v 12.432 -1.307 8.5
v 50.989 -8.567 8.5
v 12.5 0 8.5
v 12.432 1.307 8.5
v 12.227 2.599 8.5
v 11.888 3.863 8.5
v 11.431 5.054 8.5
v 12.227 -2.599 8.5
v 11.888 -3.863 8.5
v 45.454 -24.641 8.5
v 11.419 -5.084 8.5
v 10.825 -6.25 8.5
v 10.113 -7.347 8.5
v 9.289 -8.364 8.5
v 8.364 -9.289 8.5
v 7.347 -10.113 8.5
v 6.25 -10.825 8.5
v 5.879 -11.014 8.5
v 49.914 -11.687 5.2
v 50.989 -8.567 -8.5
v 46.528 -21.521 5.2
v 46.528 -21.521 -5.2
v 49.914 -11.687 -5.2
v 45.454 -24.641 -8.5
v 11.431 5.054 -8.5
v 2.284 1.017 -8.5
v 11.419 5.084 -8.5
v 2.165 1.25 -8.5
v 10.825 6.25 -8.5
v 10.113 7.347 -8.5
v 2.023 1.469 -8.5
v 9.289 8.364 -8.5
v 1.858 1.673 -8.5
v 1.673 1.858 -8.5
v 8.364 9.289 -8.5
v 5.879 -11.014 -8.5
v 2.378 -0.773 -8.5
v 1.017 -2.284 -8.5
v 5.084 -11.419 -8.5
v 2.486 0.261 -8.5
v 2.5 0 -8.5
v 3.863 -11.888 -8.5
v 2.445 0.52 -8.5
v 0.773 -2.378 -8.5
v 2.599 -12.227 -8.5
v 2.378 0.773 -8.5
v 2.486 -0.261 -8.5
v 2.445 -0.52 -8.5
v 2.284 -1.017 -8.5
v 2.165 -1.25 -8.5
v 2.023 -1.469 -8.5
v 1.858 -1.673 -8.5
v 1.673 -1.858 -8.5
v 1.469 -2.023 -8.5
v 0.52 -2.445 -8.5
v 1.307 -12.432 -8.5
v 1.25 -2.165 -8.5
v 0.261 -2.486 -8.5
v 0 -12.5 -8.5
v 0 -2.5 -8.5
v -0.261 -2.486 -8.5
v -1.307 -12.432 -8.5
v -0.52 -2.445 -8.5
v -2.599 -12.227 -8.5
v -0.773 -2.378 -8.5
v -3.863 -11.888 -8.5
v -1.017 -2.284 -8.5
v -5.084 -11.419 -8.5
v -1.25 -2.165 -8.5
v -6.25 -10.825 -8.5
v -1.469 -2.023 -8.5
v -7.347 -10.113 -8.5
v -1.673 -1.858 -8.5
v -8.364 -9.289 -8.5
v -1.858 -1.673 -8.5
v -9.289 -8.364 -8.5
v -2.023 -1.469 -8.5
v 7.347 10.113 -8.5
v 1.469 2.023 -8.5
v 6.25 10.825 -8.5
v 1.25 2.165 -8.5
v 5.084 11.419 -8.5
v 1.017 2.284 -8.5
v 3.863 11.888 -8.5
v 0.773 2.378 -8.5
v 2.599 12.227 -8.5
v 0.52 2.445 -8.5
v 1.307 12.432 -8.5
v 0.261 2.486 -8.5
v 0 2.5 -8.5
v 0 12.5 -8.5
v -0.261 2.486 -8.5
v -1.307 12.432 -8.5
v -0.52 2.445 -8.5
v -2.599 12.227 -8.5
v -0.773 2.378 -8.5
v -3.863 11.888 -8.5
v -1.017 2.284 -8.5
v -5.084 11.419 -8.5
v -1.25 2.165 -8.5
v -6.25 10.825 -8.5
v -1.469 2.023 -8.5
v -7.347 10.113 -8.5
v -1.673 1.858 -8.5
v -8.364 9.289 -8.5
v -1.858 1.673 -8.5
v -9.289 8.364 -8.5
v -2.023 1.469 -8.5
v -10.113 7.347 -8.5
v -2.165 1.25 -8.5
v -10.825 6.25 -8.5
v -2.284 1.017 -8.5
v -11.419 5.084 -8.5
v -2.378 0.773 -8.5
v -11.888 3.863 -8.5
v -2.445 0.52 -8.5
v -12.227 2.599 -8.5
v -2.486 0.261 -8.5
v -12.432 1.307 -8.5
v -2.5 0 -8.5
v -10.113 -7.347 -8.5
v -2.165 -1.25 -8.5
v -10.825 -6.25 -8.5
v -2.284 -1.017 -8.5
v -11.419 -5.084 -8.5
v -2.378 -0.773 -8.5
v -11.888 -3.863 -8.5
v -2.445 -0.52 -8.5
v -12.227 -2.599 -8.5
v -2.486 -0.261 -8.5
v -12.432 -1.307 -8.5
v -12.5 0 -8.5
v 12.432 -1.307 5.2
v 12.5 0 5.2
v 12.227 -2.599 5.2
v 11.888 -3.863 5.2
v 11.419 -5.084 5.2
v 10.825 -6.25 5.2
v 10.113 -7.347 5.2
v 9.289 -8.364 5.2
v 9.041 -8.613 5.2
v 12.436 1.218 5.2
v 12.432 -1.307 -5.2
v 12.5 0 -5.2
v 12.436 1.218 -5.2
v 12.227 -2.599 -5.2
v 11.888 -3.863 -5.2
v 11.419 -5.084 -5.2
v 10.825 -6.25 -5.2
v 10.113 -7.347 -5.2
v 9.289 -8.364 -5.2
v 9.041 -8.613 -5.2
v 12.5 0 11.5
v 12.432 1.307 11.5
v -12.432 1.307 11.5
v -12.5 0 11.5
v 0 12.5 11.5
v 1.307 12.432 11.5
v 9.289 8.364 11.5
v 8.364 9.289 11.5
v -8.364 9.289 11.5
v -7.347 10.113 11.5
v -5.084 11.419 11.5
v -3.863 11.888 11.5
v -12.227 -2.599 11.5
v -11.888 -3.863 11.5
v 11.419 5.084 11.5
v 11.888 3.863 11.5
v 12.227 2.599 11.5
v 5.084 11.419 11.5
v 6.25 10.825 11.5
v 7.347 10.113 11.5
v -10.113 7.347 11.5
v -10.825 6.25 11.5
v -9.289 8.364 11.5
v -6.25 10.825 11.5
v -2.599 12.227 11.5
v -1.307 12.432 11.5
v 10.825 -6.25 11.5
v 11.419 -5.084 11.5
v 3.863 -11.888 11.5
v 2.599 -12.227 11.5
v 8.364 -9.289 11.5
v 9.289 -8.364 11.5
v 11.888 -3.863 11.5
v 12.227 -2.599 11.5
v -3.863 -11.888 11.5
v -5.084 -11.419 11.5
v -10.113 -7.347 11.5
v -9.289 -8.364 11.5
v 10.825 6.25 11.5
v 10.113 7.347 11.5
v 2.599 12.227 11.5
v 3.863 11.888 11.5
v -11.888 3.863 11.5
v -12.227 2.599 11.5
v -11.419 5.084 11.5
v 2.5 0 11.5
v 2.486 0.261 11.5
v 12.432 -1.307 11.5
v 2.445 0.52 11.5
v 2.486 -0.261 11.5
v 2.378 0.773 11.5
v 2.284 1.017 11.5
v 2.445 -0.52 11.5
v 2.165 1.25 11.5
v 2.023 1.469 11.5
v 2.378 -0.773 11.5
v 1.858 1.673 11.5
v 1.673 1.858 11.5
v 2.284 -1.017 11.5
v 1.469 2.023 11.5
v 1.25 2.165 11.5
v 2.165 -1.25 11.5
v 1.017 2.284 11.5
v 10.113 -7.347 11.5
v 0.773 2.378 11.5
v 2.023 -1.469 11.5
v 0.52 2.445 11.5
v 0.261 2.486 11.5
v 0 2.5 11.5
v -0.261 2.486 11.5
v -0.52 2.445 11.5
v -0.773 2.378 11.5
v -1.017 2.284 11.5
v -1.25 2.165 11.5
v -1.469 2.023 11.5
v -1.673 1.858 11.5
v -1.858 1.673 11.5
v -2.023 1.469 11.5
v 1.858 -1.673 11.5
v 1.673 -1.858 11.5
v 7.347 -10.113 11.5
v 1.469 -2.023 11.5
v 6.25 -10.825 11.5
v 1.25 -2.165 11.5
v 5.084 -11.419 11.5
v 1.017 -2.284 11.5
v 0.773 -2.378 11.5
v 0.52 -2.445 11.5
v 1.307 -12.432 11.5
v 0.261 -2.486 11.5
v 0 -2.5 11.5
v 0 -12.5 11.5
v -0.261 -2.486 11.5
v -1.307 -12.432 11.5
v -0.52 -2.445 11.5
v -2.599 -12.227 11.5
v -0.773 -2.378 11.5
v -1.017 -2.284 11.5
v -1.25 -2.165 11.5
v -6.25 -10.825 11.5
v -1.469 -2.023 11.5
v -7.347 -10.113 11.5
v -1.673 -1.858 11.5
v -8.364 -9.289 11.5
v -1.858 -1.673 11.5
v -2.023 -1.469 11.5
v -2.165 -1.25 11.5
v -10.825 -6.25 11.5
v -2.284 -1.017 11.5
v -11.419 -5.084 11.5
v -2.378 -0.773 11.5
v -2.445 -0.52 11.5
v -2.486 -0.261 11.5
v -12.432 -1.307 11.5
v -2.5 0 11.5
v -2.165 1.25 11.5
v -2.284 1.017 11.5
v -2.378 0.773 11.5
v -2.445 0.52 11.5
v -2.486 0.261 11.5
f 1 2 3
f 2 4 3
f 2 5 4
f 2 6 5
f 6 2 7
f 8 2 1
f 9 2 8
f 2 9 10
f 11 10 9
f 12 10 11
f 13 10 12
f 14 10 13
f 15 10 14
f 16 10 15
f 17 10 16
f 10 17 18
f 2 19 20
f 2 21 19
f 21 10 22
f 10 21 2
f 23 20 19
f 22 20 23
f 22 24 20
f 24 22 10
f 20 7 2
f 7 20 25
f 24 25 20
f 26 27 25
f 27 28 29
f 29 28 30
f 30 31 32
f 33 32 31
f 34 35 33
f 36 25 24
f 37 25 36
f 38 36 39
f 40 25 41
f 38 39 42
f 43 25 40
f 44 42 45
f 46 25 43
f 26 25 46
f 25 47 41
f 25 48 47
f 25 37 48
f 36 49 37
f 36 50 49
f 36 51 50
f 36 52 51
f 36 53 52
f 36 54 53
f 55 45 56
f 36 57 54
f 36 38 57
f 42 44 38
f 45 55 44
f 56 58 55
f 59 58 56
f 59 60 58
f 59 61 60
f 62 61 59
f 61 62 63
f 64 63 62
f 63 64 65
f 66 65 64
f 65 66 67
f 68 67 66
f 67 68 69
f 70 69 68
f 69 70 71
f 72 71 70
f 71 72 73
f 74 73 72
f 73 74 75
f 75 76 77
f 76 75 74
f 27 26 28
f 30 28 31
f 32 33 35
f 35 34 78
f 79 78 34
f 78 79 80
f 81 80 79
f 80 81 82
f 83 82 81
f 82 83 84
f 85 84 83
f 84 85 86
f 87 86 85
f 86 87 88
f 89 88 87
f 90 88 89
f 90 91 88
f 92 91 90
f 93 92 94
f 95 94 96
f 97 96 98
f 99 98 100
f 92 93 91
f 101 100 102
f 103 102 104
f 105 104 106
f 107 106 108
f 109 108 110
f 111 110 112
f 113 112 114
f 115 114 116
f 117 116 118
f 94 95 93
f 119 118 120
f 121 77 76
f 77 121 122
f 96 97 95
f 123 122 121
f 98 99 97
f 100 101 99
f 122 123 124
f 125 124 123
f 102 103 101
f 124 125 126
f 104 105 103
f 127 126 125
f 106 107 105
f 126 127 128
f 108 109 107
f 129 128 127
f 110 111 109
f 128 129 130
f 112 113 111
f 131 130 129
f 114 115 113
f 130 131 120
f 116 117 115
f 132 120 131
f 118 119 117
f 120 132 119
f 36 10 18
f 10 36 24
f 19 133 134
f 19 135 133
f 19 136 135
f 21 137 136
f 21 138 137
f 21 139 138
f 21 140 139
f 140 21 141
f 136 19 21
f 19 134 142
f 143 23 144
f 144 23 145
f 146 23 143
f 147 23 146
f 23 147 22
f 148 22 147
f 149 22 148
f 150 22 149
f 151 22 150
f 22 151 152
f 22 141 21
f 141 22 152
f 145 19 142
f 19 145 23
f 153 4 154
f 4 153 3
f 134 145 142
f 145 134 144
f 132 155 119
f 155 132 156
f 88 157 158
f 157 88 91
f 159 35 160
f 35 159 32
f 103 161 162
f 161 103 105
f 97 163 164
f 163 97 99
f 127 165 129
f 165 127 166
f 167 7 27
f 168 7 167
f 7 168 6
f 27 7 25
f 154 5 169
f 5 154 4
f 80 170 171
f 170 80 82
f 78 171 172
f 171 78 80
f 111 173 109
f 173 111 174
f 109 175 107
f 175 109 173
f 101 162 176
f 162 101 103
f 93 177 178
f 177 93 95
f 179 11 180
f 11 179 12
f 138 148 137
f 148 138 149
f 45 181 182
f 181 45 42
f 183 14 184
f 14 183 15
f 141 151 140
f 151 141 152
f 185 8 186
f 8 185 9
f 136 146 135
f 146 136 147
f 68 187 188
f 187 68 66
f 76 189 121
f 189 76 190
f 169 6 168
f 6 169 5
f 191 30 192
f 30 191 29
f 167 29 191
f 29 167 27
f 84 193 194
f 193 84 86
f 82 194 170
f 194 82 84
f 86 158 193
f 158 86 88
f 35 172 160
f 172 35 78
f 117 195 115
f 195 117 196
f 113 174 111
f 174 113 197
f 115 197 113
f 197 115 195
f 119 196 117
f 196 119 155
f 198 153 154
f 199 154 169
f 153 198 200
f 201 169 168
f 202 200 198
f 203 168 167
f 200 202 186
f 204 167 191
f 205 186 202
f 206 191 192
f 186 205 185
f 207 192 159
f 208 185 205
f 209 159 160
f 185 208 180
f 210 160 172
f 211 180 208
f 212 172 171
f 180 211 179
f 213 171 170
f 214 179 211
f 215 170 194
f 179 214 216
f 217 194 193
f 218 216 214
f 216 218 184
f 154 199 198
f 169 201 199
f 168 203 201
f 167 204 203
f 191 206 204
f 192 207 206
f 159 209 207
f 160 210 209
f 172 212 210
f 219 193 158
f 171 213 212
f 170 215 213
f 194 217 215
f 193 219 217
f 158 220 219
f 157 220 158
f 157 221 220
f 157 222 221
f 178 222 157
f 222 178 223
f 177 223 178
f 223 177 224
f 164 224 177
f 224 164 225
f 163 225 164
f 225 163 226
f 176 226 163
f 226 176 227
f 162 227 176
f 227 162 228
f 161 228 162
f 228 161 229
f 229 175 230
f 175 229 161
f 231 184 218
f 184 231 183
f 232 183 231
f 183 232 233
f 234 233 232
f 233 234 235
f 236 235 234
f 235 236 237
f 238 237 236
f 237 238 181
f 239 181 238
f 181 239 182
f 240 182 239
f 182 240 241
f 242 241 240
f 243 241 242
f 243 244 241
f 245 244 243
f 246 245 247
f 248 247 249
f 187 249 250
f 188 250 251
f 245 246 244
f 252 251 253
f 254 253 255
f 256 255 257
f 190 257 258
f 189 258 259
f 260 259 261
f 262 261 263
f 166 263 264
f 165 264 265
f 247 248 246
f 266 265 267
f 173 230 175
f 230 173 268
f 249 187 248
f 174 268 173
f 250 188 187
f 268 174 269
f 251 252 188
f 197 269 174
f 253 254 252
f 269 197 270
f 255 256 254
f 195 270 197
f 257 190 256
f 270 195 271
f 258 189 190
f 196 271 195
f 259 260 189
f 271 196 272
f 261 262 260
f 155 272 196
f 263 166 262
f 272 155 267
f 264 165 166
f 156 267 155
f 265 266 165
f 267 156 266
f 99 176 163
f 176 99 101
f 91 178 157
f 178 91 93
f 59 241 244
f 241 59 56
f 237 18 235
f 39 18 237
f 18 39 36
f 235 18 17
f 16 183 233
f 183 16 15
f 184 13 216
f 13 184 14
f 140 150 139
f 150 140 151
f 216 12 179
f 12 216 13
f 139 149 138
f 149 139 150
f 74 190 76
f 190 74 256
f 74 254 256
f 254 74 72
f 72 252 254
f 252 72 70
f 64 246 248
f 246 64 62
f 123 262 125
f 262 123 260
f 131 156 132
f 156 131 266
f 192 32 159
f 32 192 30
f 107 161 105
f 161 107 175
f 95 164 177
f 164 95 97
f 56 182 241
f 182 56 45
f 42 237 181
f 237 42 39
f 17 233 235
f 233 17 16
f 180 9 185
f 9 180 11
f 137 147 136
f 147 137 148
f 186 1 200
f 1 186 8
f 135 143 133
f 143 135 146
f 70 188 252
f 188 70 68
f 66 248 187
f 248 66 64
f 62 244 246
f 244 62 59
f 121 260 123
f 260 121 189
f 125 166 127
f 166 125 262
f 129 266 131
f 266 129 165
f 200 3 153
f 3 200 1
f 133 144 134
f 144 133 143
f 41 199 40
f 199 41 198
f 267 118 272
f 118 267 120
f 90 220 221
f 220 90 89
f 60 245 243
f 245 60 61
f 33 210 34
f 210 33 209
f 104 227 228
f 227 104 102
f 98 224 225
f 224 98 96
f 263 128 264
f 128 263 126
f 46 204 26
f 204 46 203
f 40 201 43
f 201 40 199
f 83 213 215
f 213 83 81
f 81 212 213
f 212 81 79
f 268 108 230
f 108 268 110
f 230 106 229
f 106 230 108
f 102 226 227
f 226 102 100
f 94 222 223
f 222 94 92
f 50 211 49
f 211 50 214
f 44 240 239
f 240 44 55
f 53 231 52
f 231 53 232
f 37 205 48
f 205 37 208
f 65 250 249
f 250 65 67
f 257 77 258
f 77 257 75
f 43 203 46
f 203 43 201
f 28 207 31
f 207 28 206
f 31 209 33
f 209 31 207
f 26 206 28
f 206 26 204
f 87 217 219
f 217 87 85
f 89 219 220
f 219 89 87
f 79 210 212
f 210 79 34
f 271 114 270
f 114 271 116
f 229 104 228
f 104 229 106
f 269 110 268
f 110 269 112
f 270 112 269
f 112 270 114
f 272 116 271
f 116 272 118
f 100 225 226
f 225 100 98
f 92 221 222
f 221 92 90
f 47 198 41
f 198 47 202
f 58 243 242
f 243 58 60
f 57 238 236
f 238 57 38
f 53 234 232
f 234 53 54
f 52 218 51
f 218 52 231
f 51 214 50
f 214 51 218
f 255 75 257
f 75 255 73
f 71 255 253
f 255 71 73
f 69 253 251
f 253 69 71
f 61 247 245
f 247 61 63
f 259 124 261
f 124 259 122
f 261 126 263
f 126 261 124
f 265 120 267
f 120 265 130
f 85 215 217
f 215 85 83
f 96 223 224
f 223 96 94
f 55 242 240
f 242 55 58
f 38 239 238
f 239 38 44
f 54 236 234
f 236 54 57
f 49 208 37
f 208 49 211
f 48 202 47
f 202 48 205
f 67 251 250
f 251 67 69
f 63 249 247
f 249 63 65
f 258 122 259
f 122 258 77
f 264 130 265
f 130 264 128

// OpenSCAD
rotate([0,0,-19])
translate([30,0,0])
difference(){
cube([42,17,17],center=true);
cube([43,10.4,10.4],center=true);
}

$fn=60;
translate([0,0,-8.5])
difference(){
cylinder(d=25,h=20);
cylinder(d=5,h=20);
}
